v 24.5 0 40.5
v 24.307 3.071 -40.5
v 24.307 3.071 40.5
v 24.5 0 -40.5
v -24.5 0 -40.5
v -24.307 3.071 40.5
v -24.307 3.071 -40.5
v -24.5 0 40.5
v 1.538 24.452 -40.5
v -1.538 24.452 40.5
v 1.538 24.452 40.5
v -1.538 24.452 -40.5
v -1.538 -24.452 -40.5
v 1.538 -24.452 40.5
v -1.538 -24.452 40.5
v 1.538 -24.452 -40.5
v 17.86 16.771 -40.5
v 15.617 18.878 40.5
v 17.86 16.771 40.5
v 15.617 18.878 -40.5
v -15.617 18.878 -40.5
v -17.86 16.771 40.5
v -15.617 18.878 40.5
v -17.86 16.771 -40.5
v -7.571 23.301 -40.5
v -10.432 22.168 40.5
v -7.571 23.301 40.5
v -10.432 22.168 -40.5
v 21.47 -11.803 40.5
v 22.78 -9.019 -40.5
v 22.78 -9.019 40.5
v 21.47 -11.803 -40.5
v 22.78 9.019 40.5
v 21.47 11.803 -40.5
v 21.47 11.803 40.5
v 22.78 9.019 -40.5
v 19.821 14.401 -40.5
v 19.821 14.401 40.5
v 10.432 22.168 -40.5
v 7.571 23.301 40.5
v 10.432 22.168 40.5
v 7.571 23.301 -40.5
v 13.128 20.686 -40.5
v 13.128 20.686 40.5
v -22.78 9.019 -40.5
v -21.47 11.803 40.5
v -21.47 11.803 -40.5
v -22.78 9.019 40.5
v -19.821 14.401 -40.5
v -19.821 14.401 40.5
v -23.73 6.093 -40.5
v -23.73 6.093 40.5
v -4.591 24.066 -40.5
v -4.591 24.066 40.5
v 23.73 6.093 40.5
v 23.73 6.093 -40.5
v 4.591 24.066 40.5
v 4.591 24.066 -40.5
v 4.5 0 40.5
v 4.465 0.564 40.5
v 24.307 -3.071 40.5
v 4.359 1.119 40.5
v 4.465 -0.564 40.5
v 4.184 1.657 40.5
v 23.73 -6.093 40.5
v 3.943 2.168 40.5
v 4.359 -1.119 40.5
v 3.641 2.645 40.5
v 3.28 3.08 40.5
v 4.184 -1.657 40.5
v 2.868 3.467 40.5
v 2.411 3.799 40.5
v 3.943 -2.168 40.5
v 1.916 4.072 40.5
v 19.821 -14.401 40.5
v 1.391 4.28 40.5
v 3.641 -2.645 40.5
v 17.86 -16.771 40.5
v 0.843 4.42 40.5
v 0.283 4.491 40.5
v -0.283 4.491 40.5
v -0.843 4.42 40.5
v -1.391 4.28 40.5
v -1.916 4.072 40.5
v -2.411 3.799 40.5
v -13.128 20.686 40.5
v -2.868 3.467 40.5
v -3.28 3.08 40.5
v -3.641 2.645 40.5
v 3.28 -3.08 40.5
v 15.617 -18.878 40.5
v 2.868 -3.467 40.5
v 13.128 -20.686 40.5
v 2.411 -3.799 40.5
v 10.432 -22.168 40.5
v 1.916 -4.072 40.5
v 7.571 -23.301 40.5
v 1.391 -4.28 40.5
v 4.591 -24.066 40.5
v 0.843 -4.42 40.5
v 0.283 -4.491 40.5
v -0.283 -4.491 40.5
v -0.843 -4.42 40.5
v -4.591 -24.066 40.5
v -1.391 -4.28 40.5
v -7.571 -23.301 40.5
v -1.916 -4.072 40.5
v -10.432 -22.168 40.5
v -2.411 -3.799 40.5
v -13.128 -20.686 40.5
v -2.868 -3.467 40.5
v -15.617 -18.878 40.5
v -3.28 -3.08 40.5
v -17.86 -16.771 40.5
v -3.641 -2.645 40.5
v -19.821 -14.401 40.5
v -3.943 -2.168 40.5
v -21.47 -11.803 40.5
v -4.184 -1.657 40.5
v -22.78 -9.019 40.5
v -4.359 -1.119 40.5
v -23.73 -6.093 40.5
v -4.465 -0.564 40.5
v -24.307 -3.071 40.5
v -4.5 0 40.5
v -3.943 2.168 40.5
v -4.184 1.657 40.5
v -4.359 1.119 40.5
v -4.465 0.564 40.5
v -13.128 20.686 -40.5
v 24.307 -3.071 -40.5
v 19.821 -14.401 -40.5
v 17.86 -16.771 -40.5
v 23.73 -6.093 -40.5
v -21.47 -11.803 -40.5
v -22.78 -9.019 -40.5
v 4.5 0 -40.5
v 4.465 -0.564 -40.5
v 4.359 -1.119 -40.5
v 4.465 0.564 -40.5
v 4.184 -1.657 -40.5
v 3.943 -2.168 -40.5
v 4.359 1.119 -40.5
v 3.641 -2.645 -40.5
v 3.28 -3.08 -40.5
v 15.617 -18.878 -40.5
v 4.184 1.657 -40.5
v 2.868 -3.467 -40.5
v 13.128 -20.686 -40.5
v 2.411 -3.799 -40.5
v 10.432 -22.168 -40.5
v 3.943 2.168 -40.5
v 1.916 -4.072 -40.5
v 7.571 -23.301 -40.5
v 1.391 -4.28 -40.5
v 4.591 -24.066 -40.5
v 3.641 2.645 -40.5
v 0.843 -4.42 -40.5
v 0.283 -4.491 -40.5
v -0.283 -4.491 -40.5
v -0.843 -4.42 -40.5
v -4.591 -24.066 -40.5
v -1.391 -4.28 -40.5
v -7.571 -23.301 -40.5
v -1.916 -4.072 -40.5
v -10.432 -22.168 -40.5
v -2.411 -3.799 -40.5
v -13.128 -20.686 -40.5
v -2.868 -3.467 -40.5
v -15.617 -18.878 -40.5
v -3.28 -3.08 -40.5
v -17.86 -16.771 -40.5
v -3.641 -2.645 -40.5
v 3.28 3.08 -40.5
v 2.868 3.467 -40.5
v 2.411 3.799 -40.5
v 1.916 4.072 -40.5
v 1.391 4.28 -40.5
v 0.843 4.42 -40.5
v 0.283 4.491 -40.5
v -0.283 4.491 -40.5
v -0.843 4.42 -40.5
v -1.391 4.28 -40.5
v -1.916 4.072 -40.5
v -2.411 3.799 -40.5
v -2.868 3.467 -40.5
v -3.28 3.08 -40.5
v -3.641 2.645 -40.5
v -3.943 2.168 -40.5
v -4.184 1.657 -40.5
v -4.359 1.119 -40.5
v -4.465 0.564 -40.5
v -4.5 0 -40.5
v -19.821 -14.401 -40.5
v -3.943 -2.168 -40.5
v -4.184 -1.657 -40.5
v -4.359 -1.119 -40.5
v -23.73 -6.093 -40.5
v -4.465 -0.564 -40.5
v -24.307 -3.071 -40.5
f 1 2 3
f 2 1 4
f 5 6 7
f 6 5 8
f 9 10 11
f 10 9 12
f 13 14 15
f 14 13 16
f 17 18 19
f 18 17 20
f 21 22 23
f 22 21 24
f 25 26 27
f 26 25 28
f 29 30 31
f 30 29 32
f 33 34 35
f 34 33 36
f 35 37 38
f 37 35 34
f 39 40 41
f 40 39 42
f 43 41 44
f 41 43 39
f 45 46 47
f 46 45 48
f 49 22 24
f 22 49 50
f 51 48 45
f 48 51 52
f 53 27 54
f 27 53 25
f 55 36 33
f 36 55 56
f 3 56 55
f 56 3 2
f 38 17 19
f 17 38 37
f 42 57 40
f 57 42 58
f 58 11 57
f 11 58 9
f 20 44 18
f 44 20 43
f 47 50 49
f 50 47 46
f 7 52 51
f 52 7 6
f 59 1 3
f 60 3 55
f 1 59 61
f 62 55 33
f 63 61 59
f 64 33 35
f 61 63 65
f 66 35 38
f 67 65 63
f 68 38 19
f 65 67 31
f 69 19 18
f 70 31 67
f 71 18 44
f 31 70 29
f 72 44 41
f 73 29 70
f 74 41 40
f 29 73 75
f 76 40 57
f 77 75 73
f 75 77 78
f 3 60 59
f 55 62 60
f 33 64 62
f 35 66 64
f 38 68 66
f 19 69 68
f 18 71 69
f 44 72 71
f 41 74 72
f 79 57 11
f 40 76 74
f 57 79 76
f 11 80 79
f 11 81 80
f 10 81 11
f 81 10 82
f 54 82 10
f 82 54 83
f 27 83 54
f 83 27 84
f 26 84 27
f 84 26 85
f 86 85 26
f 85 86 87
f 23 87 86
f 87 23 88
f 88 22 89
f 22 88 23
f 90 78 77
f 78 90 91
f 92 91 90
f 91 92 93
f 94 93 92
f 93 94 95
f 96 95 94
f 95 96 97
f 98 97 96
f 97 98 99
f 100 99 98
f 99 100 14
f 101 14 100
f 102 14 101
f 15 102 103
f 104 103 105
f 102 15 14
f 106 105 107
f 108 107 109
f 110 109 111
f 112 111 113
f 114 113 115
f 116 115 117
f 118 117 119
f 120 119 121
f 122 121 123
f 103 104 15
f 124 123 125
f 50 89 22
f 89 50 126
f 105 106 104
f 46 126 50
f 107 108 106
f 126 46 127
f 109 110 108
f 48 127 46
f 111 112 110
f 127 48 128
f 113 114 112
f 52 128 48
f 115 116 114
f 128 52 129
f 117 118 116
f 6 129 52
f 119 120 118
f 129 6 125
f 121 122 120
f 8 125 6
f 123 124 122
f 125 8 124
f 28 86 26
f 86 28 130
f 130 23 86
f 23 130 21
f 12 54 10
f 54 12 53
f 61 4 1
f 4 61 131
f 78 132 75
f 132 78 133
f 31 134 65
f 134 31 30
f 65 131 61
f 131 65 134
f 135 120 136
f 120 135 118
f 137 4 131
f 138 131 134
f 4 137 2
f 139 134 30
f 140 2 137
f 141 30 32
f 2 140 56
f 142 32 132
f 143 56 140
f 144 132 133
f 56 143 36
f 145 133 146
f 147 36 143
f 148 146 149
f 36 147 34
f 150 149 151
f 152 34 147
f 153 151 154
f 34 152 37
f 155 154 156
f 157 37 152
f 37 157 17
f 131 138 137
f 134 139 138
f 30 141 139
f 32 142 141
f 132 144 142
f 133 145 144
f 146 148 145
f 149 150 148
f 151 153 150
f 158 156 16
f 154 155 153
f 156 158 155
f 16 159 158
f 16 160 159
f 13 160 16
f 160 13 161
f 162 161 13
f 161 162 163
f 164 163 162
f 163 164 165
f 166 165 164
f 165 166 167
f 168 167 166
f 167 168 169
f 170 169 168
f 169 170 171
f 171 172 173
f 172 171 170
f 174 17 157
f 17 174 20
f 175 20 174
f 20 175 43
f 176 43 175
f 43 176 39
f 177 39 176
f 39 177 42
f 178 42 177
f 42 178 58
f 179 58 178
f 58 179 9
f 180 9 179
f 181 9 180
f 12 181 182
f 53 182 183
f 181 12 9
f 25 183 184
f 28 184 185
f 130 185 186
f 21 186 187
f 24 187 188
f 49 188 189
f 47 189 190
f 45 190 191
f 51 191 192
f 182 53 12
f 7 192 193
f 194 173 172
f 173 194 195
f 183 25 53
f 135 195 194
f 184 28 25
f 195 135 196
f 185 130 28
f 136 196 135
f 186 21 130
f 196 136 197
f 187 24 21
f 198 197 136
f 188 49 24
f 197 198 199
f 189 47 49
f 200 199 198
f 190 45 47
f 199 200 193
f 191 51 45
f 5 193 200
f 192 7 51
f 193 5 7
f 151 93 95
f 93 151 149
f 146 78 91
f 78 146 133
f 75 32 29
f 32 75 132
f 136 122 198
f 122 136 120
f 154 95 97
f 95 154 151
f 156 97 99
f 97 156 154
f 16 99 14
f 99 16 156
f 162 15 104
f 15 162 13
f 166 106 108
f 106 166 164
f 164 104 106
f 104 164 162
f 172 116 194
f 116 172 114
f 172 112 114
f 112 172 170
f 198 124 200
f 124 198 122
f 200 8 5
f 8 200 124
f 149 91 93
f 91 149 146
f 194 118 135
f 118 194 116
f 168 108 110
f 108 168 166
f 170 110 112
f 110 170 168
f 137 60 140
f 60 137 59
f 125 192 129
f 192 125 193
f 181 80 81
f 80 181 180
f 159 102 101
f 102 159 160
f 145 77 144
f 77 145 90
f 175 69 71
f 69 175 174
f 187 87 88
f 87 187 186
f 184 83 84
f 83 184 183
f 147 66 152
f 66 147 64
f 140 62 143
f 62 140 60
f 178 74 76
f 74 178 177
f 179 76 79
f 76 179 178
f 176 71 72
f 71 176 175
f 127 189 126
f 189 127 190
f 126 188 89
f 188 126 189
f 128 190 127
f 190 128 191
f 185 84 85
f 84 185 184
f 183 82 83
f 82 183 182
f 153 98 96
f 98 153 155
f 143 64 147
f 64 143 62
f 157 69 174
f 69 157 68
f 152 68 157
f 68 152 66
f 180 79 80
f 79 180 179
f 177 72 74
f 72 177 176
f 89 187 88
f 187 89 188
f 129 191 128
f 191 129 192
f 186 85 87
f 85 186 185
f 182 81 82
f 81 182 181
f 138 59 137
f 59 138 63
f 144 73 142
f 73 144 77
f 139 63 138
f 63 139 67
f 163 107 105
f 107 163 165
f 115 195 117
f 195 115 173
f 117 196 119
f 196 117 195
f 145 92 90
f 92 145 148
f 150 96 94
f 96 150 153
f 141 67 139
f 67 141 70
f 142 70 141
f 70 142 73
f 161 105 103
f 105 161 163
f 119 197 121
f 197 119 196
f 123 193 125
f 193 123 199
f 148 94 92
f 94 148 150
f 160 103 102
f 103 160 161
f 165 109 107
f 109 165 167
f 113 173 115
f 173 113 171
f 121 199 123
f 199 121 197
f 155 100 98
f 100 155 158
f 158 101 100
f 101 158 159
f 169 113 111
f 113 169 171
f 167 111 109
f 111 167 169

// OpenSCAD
$fn = 50;


difference() {
	union() {
		translate(v = [0, 0, -40.5000000000]) {
			cylinder(h = 81, r = 24.5000000000);
		}
	}
	union() {
		translate(v = [0, 0, -100.0000000000]) {
			cylinder(h = 200, r = 4.5000000000);
		}
	}
}
